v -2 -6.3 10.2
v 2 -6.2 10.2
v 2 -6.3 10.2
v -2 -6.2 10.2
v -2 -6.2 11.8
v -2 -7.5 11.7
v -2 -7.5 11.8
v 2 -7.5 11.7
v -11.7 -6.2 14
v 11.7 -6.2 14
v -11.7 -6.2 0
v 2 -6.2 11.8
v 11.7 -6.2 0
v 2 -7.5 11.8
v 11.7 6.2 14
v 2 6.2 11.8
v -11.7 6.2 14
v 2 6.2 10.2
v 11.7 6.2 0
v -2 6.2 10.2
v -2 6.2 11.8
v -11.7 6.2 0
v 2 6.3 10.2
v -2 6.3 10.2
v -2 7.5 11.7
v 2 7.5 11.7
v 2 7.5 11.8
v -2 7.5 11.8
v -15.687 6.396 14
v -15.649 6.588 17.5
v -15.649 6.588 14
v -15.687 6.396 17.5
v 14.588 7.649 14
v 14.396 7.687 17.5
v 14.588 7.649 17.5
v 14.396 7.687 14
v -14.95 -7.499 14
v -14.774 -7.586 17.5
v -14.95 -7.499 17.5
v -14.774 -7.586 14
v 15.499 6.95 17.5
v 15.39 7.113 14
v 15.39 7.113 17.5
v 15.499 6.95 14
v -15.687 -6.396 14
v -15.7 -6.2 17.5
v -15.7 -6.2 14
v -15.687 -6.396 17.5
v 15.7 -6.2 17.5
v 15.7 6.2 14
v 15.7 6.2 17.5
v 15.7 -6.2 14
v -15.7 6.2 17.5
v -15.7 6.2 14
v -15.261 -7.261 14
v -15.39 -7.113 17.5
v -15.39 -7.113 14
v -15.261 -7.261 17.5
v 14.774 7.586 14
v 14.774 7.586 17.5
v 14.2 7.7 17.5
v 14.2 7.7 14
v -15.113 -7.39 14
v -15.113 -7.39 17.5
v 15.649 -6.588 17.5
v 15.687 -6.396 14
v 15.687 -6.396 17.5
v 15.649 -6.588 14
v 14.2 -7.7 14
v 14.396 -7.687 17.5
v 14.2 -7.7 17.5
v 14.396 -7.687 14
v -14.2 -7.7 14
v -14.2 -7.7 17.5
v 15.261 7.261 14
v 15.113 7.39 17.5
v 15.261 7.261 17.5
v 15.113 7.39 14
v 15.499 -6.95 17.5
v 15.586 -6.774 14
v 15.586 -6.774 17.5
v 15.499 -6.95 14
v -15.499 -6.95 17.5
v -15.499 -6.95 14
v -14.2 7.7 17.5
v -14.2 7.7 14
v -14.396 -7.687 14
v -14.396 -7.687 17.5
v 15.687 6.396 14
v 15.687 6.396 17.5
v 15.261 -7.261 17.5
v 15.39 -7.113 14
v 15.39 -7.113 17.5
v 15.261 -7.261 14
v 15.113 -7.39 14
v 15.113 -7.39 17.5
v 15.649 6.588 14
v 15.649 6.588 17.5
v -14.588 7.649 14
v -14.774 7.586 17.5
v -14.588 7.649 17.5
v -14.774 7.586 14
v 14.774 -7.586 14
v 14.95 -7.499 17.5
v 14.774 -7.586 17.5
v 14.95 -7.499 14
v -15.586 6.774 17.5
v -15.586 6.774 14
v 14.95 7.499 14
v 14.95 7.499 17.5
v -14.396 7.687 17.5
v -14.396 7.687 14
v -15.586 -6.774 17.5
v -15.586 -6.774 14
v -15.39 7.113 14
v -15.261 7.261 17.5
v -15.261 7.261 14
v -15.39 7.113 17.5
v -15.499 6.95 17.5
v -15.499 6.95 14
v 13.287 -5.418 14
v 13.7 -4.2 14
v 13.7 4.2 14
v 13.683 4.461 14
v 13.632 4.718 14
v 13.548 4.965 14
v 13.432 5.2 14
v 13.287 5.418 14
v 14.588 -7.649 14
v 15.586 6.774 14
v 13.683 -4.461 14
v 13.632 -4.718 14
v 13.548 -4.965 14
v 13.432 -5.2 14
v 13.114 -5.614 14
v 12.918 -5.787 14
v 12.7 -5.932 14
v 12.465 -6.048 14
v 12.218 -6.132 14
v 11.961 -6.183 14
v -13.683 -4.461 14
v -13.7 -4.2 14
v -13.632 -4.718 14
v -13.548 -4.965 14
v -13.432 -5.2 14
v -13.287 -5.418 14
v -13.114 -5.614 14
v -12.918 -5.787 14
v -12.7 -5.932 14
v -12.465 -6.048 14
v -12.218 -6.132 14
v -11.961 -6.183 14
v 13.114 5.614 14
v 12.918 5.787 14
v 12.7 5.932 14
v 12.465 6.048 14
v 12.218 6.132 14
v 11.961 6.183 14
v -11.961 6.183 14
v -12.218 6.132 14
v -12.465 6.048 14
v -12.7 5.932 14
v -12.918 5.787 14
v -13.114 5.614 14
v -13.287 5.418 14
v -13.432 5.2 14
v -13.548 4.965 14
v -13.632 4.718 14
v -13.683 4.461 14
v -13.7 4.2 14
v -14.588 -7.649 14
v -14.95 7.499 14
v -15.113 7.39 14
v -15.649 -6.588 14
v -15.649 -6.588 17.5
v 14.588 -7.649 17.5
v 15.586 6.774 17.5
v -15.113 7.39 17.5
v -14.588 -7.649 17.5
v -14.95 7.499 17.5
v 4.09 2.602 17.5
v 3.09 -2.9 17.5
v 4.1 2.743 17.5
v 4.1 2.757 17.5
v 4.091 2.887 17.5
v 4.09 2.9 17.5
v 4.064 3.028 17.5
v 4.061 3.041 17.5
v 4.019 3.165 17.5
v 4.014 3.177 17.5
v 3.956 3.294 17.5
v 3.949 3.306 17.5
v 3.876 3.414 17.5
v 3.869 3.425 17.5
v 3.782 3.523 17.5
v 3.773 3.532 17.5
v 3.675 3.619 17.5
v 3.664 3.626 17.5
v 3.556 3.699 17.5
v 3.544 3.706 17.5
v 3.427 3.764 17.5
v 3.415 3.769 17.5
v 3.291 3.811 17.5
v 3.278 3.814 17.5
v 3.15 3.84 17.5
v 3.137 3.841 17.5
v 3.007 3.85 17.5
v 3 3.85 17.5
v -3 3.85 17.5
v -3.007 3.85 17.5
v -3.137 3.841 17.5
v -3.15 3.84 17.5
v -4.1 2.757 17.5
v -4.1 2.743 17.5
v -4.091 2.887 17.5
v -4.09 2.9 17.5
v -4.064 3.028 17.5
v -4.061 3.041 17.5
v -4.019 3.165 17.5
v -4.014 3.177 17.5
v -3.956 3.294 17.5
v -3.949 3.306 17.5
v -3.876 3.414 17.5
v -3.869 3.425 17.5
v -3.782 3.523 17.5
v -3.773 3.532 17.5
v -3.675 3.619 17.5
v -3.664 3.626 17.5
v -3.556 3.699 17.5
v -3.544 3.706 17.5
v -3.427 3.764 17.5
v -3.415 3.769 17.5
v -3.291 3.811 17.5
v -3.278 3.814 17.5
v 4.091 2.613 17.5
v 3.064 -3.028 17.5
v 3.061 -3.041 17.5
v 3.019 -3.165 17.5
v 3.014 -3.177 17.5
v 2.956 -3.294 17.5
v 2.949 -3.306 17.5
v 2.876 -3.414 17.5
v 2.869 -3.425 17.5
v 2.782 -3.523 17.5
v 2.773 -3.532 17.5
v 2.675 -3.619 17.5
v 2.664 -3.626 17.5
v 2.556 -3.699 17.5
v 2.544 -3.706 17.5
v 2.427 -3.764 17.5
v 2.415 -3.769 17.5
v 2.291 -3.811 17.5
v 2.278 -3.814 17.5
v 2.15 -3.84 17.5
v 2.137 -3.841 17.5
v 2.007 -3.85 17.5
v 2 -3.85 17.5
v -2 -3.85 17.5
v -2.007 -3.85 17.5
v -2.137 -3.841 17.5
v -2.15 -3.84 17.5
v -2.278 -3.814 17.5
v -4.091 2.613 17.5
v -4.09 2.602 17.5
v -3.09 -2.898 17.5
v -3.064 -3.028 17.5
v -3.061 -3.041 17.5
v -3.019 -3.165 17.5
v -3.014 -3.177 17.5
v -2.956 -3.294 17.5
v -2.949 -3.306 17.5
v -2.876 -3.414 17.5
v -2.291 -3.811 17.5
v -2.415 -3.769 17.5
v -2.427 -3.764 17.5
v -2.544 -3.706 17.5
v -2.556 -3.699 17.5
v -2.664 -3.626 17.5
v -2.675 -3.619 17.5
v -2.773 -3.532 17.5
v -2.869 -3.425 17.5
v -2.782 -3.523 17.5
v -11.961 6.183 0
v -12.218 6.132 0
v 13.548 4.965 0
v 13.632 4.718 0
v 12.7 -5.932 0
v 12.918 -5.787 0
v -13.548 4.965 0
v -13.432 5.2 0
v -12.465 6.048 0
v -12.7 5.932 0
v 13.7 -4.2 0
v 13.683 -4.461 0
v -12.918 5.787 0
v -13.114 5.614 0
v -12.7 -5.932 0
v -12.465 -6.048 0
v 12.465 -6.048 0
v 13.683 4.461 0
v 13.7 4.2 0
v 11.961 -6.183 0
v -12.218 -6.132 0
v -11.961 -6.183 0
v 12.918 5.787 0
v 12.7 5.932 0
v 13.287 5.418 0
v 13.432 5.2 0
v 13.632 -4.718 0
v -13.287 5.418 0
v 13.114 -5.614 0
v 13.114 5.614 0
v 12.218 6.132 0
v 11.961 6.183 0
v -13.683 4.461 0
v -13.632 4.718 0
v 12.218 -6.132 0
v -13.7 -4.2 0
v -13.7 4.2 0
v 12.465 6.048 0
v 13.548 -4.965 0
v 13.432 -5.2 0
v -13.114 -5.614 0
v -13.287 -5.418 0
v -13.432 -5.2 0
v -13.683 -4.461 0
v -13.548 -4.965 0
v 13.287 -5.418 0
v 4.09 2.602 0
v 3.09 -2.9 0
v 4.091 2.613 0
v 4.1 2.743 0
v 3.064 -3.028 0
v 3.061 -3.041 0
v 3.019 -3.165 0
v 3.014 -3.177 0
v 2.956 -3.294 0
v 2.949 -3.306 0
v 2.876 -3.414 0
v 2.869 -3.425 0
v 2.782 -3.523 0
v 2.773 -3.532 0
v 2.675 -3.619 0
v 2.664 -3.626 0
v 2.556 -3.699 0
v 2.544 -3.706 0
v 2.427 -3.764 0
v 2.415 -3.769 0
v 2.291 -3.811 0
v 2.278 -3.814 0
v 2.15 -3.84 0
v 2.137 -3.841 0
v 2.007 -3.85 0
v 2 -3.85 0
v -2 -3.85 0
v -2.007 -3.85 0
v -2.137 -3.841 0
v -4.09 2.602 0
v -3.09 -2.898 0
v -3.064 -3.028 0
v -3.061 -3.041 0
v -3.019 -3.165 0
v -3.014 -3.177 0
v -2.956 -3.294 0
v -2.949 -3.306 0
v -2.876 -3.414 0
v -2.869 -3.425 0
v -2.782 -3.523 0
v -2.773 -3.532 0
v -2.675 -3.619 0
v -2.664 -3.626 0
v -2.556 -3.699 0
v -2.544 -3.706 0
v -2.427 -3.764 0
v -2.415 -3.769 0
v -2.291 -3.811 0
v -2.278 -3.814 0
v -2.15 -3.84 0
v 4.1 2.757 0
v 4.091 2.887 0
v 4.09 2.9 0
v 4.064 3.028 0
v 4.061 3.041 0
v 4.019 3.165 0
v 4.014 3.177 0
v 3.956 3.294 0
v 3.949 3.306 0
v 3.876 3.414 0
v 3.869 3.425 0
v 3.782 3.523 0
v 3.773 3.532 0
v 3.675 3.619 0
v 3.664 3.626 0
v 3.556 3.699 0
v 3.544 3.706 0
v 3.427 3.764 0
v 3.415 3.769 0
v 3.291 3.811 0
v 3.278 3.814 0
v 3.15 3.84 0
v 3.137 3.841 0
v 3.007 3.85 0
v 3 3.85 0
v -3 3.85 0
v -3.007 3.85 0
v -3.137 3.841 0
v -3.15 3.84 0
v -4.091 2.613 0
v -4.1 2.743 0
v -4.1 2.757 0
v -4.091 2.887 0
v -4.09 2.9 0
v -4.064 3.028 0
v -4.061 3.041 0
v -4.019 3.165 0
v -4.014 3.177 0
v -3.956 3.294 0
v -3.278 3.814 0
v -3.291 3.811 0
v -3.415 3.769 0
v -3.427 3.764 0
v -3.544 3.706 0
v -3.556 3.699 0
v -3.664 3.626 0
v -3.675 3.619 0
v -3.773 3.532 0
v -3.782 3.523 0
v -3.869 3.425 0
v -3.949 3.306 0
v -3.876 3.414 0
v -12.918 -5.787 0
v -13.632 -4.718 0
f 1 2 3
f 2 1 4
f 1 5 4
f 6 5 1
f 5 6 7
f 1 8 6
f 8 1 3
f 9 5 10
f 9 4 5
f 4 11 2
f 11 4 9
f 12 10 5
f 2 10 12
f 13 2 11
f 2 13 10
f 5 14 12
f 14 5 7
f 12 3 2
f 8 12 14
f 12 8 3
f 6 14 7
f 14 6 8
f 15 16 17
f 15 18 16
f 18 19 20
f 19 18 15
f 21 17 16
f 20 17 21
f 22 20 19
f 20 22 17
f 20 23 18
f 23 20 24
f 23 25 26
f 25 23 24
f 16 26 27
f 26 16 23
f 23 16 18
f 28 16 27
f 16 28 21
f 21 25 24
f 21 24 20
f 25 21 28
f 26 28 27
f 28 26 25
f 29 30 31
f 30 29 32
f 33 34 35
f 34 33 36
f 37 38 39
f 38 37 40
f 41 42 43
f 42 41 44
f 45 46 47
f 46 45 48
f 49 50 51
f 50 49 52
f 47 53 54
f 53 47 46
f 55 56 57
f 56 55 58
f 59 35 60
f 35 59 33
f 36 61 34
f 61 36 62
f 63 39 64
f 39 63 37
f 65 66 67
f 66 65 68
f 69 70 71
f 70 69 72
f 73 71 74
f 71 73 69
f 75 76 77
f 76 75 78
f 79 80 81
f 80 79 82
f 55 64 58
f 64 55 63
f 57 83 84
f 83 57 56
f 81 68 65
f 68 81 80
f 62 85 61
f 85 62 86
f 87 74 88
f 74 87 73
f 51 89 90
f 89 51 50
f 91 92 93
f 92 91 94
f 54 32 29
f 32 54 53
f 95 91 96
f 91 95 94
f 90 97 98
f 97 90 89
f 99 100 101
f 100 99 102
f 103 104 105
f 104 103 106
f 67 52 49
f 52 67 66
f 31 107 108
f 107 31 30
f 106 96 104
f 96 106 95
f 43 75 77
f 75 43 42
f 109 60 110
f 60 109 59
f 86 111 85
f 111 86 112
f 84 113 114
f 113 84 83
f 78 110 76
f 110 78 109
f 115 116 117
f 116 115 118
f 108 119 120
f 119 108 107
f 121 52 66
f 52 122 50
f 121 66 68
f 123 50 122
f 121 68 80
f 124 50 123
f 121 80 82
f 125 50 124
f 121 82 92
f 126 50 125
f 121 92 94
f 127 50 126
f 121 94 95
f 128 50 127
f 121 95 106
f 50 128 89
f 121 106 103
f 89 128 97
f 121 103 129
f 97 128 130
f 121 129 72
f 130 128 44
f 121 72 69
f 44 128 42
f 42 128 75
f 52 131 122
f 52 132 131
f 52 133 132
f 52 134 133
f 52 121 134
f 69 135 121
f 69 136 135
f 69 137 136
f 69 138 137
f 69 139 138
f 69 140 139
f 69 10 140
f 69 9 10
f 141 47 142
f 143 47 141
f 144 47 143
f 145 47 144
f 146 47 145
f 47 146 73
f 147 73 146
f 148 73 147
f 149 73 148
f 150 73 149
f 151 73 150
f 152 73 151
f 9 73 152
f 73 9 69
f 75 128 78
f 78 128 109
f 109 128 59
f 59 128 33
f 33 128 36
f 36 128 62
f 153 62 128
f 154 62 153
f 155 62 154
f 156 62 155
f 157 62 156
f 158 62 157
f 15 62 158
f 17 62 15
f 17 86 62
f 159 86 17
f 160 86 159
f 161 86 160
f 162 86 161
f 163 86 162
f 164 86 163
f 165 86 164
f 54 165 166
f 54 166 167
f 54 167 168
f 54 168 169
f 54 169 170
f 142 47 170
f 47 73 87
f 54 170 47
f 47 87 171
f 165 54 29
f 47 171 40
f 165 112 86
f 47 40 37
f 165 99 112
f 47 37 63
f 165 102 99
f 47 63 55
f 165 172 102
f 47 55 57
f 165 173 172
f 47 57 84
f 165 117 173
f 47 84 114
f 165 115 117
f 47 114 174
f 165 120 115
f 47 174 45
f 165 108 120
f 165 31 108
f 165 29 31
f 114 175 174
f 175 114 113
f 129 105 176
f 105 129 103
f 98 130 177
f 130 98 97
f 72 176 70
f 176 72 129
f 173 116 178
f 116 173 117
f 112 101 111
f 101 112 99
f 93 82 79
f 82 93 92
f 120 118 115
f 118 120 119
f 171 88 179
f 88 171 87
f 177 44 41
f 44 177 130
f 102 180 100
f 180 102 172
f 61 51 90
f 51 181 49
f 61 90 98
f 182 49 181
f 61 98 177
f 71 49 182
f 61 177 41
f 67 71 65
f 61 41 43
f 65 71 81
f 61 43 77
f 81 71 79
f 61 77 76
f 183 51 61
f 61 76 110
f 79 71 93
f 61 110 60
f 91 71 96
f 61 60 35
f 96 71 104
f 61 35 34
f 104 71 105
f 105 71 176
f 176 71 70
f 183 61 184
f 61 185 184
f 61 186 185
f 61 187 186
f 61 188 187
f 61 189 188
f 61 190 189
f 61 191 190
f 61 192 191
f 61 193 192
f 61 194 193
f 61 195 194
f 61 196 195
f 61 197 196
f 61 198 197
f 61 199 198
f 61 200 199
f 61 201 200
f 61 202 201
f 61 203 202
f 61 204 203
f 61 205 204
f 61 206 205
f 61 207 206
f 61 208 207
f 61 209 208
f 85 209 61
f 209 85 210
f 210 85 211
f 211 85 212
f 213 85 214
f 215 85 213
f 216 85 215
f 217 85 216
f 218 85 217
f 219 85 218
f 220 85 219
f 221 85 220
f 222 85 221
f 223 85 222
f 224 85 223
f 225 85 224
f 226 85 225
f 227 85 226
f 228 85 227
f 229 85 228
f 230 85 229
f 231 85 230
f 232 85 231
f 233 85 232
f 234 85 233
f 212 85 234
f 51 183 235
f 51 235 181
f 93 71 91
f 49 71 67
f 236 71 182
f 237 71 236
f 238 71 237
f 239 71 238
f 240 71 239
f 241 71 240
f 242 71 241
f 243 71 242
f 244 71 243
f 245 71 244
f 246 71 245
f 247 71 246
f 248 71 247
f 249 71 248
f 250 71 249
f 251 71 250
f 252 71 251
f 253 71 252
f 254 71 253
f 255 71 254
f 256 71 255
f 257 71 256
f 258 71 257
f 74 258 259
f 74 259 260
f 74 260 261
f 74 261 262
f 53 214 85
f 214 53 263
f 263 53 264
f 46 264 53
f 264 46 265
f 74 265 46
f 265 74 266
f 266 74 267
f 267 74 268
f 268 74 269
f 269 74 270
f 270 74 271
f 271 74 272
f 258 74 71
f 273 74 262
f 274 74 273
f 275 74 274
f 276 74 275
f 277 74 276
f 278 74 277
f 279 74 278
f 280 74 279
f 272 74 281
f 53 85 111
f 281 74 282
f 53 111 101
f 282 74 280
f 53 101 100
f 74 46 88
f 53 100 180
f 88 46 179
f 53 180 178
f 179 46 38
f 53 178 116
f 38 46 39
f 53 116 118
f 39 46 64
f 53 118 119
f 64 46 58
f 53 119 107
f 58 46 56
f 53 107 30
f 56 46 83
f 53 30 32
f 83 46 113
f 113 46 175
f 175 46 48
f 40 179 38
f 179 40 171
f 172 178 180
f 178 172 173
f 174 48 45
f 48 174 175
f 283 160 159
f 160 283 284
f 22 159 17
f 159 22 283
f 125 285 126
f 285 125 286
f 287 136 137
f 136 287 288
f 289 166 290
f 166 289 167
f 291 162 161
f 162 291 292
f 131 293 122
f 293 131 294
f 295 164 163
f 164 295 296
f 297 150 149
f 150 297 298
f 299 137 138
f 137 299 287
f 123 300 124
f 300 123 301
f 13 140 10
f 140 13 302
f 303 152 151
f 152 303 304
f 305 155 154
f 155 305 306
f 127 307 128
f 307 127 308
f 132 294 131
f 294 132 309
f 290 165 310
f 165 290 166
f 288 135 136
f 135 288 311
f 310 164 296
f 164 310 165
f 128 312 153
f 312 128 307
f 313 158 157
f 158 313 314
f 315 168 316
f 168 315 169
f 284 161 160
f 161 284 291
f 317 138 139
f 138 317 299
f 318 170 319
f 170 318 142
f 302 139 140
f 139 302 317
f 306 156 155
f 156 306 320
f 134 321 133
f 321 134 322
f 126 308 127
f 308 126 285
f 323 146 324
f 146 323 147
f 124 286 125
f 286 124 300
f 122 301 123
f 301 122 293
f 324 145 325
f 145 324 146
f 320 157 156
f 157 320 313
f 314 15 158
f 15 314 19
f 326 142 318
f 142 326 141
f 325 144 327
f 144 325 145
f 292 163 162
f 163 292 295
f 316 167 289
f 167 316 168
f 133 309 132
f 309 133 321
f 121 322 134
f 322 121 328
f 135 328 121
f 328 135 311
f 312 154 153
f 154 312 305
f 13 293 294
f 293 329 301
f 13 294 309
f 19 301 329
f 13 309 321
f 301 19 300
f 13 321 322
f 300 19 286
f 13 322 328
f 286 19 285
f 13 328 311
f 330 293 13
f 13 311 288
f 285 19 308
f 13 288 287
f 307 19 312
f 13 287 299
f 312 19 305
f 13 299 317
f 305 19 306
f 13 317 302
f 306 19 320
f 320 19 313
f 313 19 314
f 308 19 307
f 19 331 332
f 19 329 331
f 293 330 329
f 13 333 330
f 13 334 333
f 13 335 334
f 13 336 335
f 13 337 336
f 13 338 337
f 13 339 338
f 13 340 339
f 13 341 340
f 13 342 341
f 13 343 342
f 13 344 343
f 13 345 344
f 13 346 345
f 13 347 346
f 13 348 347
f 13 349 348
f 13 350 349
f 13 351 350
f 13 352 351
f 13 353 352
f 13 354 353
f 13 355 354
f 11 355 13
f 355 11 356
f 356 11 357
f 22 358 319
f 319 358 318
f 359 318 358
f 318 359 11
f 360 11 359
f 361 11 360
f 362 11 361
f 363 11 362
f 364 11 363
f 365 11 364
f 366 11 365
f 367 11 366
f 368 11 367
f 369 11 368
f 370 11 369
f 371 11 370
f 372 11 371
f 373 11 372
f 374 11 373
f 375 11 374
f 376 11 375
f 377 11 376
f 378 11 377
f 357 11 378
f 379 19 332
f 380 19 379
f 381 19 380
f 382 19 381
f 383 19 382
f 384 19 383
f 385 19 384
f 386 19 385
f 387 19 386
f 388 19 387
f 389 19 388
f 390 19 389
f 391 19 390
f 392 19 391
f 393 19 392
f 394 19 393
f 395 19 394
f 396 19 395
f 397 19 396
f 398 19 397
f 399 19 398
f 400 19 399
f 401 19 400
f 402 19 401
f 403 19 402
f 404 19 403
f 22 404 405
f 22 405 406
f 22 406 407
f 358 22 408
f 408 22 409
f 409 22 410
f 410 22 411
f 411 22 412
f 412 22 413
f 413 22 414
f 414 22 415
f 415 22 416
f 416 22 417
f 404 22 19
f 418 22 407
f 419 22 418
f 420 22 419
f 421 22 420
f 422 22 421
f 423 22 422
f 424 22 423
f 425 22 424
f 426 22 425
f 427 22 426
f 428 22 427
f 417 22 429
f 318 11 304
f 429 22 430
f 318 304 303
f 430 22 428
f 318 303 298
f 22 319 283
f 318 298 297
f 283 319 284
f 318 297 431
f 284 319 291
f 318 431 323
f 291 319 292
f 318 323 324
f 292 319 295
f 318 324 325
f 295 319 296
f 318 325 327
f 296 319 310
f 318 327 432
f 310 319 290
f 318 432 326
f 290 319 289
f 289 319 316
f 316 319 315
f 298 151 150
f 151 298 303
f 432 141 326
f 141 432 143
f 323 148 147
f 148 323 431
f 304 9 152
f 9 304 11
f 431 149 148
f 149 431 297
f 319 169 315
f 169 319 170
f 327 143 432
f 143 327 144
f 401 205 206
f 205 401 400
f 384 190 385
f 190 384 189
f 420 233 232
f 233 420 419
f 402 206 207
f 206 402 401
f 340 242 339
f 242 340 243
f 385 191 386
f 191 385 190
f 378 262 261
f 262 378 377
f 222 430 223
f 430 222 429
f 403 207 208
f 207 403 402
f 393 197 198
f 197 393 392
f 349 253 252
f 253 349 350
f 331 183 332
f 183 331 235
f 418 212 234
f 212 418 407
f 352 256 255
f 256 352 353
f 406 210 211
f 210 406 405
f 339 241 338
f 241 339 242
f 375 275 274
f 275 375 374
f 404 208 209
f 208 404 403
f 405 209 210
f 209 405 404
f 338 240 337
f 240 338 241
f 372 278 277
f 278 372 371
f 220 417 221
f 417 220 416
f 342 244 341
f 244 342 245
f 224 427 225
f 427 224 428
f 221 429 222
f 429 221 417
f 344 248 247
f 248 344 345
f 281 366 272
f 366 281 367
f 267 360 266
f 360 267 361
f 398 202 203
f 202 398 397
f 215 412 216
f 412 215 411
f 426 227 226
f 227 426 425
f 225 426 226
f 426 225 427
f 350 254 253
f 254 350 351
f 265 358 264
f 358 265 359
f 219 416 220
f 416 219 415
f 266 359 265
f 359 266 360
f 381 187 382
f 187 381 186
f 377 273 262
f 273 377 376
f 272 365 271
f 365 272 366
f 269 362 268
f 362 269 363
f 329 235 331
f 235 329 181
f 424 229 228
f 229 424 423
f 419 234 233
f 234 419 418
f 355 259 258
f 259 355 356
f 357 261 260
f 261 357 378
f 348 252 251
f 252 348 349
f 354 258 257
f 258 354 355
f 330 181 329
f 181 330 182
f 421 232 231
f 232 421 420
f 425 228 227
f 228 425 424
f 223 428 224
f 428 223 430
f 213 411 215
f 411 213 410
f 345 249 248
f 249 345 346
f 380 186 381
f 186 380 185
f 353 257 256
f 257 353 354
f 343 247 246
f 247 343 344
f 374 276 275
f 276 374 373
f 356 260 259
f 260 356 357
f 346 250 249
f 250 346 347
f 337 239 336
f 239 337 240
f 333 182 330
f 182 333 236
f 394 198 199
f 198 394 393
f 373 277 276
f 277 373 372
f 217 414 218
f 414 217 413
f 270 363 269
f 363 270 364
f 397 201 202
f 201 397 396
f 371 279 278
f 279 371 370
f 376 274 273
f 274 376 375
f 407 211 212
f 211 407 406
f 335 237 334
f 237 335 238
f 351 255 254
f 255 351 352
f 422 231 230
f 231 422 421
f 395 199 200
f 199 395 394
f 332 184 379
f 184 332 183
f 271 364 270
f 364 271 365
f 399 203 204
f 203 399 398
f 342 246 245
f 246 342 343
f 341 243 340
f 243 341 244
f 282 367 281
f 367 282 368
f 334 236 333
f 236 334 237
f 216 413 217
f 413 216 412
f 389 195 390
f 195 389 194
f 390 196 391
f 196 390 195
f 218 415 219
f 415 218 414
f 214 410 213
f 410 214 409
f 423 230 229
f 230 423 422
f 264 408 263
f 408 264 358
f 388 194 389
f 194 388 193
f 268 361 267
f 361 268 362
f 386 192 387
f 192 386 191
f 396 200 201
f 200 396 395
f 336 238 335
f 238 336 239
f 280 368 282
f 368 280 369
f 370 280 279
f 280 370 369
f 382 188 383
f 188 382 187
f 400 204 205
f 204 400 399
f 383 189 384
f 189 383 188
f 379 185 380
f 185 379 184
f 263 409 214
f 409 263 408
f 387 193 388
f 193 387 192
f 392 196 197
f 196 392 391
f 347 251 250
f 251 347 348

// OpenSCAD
// file: insert_base.scad
// ============================================
// MODULAR CABLE ORGANIZER - BASE INSERT MODULE
// ============================================
// This is the parent module for all insert types
// Include this file and call insert_with_port() with a port shape
// ============================================

include <parameters.scad>

// === BASE INSERT WITH CUSTOM BODY DEPTH ===
module insert_blank_custom(body_depth) {
    union() {
        // Base plate (sits in frame slot)
        rounded_box_rect(insert_width, insert_height, insert_base_depth, 1.5);
        
        // Body (protrudes out front) - custom depth
        translate([0, 0, insert_base_depth])
            rounded_box_rect(insert_body_width, insert_body_height, body_depth, 2);
        
        // Snap tabs on all 4 sides
        snap_tabs_all();
    }
}

// === BASE INSERT (default depth - for backwards compatibility) ===
module insert_blank() {
    insert_blank_custom(insert_body_depth);
}

// === INSERT WITH THROUGH-HOLE PORT (custom depth) ===
// Pass body_depth and a 2D shape as children
module insert_with_port_custom(body_depth) {
    total_depth = insert_base_depth + body_depth;
    difference() {
        insert_blank_custom(body_depth);
        
        // Cut port hole ALL THE WAY through (tube shape)
        translate([0, 0, -0.1])
            linear_extrude(total_depth + 0.2)
            offset(r=port_clearance)  // Add clearance to port opening
            children();
    }
}

// === INSERT WITH THROUGH-HOLE PORT (default depth) ===
module insert_with_port() {
    insert_with_port_custom(insert_body_depth) children();
}

// === PRE-MADE INSERT MODULES WITH CORRECT DEPTHS ===
module insert_usbc() {
    insert_with_port_custom(usbc_body_depth) port_usbc();
}

module insert_usba() {
    insert_with_port_custom(usba_body_depth) port_usba();
}

module insert_usb_mini() {
    insert_with_port_custom(usb_mini_body_depth) port_usb_mini();
}

module insert_usb_micro() {
    insert_with_port_custom(usb_micro_body_depth) port_usb_micro();
}

module insert_usb_b() {
    insert_with_port_custom(usb_b_body_depth) port_usb_b();
}

module insert_lightning() {
    insert_with_port_custom(lightning_body_depth) port_lightning();
}

module insert_hdmi() {
    insert_with_port_custom(hdmi_body_depth) port_hdmi();
}

module insert_audio_jack() {
    insert_with_port_custom(audio_jack_body_depth) port_audio_jack();
}

// === SNAP TABS (on neck/body - catch on frame cutouts) ===
// Tabs are on the body, positioned to engage with frame wall cutouts
module snap_tabs_all() {
    // Position tabs up on body (clear of base/frame)
    tab_z = insert_base_depth + snap_tab_offset;
    
    // Tabs on all 4 sides of the body
    for (angle = [0, 90, 180, 270]) {
        rotate([0, 0, angle])
            translate([0, insert_body_height/2, tab_z])
            neck_snap_tab();
    }
}

module neck_snap_tab() {
    // Wedge shape (FLIPPED): 
    // - Peak/taper on BOTTOM - slides past back plate when inserting
    // - Flat on TOP - catches and holds
    hull() {
        // Peak of wedge (protruding, at BOTTOM of tab)
        translate([-snap_tab_width/2, snap_tab_protrude, 0])
            cube([snap_tab_width, 0.1, 0.1]);
        // Flat top (at body surface, TOP of tab)
        translate([-snap_tab_width/2, 0, snap_tab_thick])
            cube([snap_tab_width, 0.1, 0.1]);
        // Base of wedge (at body surface, bottom)
        translate([-snap_tab_width/2, 0, 0])
            cube([snap_tab_width, 0.1, 0.1]);
    }
}

module snap_tab_horizontal() {
    hull() {
        translate([0, -snap_tab_protrude/2, 0])
            cube([snap_tab_width, 0.1, snap_tab_thick], center=true);
        translate([0, snap_tab_protrude/2, snap_tab_thick * 0.2])
            cube([snap_tab_width, 0.1, snap_tab_thick * 0.6], center=true);
    }
}

module snap_tab_vertical() {
    hull() {
        translate([-snap_tab_protrude/2, 0, 0])
            cube([0.1, snap_tab_width, snap_tab_thick], center=true);
        translate([snap_tab_protrude/2, 0, snap_tab_thick * 0.2])
            cube([0.1, snap_tab_width, snap_tab_thick * 0.6], center=true);
    }
}

// === UTILITY MODULES ===
module rounded_box_rect(w, d, h, r) {
    translate([0, 0, h/2])
        hull() {
            for (x = [-1, 1], y = [-1, 1])
                translate([x * (w/2 - r), y * (d/2 - r), 0])
                    cylinder(h=h, r=r, center=true);
        }
}

// === PORT SHAPE MODULES (2D) ===
// These define the cutout shapes for each connector type

module port_rounded_rect(w, h, r) {
    // Standard rounded rectangle
    hull() {
        for (x = [-1, 1], y = [-1, 1])
            translate([x * (w/2 - r), y * (h/2 - r)])
                circle(r=r);
    }
}

module port_usbc() {
    port_rounded_rect(usbc_w, usbc_h, usbc_r);
}

module port_usba() {
    port_rounded_rect(usba_w, usba_h, usba_r);
}

module port_usb_mini() {
    port_rounded_rect(usb_mini_w, usb_mini_h, usb_mini_r);
}

module port_usb_micro() {
    port_rounded_rect(usb_micro_w, usb_micro_h, usb_micro_r);
}

module port_usb_b() {
    // USB-B has beveled top corners
    hull() {
        // Bottom corners (full radius)
        for (x = [-1, 1])
            translate([x * (usb_b_w/2 - usb_b_r), -(usb_b_h/2 - usb_b_r)])
                circle(r=usb_b_r);
        // Top corners (chamfered - moved inward)
        for (x = [-1, 1])
            translate([x * (usb_b_w/2 - usb_b_r - 1), (usb_b_h/2 - usb_b_r)])
                circle(r=usb_b_r);
    }
}

module port_lightning() {
    port_rounded_rect(lightning_w, lightning_h, lightning_r);
}

module port_hdmi() {
    // HDMI is tapered (wider at top)
    hull() {
        // Top (wider)
        for (x = [-1, 1])
            translate([x * (hdmi_w/2 - hdmi_r), (hdmi_h/2 - hdmi_r)])
                circle(r=hdmi_r);
        // Bottom (narrower)
        for (x = [-1, 1])
            translate([x * (hdmi_w/2 - hdmi_r - 1), -(hdmi_h/2 - hdmi_r)])
                circle(r=hdmi_r);
    }
}

module port_audio_jack() {
    circle(d=audio_jack_dia);
}

module port_label_recess() {
    // Shallow rectangular recess for labels
    square([label_w, label_h], center=true);
}

// === RENDER (for testing this file directly) ===
// insert_blank();
// file: parameters.scad
// ============================================
// MODULAR CABLE ORGANIZER - SHARED PARAMETERS
// ============================================
// All dimensions in mm - include this in all files
// ============================================

$fn = 48;

// === TOLERANCES ===
clearance = 0.3;
port_clearance = 0.1;  // Extra clearance for port openings (reduced - 0.2 was too loose for USB-C)
wall = 1.6;

// === SLOT DIMENSIONS (2:1 aspect ratio) - scaled to 2/3 ===
slot_width = 32;  // Reduced by 1mm for more compact insert
slot_height = 16;  // Reduced by 1mm for more compact insert
slot_depth = 4;  // Reduced from 6mm - less frame depth needed

// === FRAME STRUCTURE ===
frame_wall = 0.5;   // Reduced for more compact frame
frame_border = 8;  // Increased by 10mm for mounting holes with countersink
frame_back = 2;     // Slightly thicker for snap catch strength
mount_hole_dia = 3;
countersink_dia = 6;  // Diameter of countersink for screw heads
countersink_depth = 2;  // Depth of countersink

// === GRID ===
grid_cols = 2;
grid_rows = 2;

// === INSERT BASE DIMENSIONS ===
insert_width = slot_width - (2 * clearance);
insert_height = slot_height - (2 * clearance);
insert_base_depth = slot_depth - 0.5;

// === INSERT BODY (protrudes from frame) ===
insert_body_width = insert_width - 4;
insert_body_height = insert_height - 3;
insert_body_depth = 12;  // Deep enough to accommodate male cable connectors
insert_top_thick = 1.5;  // Top platform thickness

// === SNAP TABS (on neck/body - catch on back plate) ===
snap_tab_width = 4;
snap_tab_protrude = 1.2;  // How far tab sticks out from body
snap_tab_thick = 1.5;     // Z thickness of tab
snap_tab_offset = 2.2;      // Distance from base to tab bottom on insert (increased to clear frame)

// === CONNECTOR PORT DIMENSIONS & BODY DEPTHS ===
// Port dimensions from reference blueprints
// Body depths sized to match typical male connector lengths

// USB-C: 8.4 x 2.6mm, male connector ~9mm
usbc_w = 8.4;
usbc_h = 2.6;
usbc_r = 1.0;
usbc_body_depth = 9;

// USB-A: 14.0 x 6.5mm, male connector ~13mm
usba_w = 14.0;
usba_h = 6.5;
usba_r = 0.5;
usba_body_depth = 13;

// USB Mini: 6.9 x 3.0mm, male connector ~9mm
usb_mini_w = 6.9;
usb_mini_h = 3.0;
usb_mini_r = 0.5;
usb_mini_body_depth = 9;

// USB Micro: 6.9 x 1.8mm, male connector ~7mm
usb_micro_w = 6.9;
usb_micro_h = 1.8;
usb_micro_r = 0.3;
usb_micro_body_depth = 7;

// USB-B: 8.0 x 7.5mm, male connector ~14mm
usb_b_w = 8.0;
usb_b_h = 7.5;
usb_b_r = 1.0;
usb_b_body_depth = 14;

// Lightning: 6.7 x 1.5mm, male connector ~8mm
lightning_w = 6.7;
lightning_h = 1.5;
lightning_r = 0.5;
lightning_body_depth = 8;

// HDMI: 14.0 x 4.5mm, male connector ~16mm
hdmi_w = 14.0;
hdmi_h = 4.5;
hdmi_r = 0.5;
hdmi_body_depth = 16;

// 3.5mm Audio Jack: male plug ~14mm
audio_jack_dia = 6.0;
audio_jack_body_depth = 14;

// Blank/Label: recessed area for label
label_w = 30;
label_h = 12;
label_depth = 0.8;

// === CALCULATED VALUES ===
frame_total_depth = frame_back + slot_depth;
grid_width = (grid_cols * slot_width) + ((grid_cols - 1) * frame_wall);
grid_height = (grid_rows * slot_height) + ((grid_rows - 1) * frame_wall);
frame_width = grid_width + (2 * frame_border);
frame_height_total = grid_height + (2 * frame_border);
insert_total_depth = insert_base_depth + insert_body_depth;
// main file
// ============================================
// PRINT FILE: USB-B Insert
// ============================================
// Body depth: 14mm (matches USB-B male connector)
// Print with port side DOWN (flat on bed)
// No supports needed - through-hole design
// ============================================

include <parameters.scad>
include <insert_base.scad>

// USB-B insert - oriented for printing (port side down)
total_depth = insert_base_depth + usb_b_body_depth;

rotate([180, 0, 0])
translate([0, 0, -total_depth])
    insert_usb_b();
